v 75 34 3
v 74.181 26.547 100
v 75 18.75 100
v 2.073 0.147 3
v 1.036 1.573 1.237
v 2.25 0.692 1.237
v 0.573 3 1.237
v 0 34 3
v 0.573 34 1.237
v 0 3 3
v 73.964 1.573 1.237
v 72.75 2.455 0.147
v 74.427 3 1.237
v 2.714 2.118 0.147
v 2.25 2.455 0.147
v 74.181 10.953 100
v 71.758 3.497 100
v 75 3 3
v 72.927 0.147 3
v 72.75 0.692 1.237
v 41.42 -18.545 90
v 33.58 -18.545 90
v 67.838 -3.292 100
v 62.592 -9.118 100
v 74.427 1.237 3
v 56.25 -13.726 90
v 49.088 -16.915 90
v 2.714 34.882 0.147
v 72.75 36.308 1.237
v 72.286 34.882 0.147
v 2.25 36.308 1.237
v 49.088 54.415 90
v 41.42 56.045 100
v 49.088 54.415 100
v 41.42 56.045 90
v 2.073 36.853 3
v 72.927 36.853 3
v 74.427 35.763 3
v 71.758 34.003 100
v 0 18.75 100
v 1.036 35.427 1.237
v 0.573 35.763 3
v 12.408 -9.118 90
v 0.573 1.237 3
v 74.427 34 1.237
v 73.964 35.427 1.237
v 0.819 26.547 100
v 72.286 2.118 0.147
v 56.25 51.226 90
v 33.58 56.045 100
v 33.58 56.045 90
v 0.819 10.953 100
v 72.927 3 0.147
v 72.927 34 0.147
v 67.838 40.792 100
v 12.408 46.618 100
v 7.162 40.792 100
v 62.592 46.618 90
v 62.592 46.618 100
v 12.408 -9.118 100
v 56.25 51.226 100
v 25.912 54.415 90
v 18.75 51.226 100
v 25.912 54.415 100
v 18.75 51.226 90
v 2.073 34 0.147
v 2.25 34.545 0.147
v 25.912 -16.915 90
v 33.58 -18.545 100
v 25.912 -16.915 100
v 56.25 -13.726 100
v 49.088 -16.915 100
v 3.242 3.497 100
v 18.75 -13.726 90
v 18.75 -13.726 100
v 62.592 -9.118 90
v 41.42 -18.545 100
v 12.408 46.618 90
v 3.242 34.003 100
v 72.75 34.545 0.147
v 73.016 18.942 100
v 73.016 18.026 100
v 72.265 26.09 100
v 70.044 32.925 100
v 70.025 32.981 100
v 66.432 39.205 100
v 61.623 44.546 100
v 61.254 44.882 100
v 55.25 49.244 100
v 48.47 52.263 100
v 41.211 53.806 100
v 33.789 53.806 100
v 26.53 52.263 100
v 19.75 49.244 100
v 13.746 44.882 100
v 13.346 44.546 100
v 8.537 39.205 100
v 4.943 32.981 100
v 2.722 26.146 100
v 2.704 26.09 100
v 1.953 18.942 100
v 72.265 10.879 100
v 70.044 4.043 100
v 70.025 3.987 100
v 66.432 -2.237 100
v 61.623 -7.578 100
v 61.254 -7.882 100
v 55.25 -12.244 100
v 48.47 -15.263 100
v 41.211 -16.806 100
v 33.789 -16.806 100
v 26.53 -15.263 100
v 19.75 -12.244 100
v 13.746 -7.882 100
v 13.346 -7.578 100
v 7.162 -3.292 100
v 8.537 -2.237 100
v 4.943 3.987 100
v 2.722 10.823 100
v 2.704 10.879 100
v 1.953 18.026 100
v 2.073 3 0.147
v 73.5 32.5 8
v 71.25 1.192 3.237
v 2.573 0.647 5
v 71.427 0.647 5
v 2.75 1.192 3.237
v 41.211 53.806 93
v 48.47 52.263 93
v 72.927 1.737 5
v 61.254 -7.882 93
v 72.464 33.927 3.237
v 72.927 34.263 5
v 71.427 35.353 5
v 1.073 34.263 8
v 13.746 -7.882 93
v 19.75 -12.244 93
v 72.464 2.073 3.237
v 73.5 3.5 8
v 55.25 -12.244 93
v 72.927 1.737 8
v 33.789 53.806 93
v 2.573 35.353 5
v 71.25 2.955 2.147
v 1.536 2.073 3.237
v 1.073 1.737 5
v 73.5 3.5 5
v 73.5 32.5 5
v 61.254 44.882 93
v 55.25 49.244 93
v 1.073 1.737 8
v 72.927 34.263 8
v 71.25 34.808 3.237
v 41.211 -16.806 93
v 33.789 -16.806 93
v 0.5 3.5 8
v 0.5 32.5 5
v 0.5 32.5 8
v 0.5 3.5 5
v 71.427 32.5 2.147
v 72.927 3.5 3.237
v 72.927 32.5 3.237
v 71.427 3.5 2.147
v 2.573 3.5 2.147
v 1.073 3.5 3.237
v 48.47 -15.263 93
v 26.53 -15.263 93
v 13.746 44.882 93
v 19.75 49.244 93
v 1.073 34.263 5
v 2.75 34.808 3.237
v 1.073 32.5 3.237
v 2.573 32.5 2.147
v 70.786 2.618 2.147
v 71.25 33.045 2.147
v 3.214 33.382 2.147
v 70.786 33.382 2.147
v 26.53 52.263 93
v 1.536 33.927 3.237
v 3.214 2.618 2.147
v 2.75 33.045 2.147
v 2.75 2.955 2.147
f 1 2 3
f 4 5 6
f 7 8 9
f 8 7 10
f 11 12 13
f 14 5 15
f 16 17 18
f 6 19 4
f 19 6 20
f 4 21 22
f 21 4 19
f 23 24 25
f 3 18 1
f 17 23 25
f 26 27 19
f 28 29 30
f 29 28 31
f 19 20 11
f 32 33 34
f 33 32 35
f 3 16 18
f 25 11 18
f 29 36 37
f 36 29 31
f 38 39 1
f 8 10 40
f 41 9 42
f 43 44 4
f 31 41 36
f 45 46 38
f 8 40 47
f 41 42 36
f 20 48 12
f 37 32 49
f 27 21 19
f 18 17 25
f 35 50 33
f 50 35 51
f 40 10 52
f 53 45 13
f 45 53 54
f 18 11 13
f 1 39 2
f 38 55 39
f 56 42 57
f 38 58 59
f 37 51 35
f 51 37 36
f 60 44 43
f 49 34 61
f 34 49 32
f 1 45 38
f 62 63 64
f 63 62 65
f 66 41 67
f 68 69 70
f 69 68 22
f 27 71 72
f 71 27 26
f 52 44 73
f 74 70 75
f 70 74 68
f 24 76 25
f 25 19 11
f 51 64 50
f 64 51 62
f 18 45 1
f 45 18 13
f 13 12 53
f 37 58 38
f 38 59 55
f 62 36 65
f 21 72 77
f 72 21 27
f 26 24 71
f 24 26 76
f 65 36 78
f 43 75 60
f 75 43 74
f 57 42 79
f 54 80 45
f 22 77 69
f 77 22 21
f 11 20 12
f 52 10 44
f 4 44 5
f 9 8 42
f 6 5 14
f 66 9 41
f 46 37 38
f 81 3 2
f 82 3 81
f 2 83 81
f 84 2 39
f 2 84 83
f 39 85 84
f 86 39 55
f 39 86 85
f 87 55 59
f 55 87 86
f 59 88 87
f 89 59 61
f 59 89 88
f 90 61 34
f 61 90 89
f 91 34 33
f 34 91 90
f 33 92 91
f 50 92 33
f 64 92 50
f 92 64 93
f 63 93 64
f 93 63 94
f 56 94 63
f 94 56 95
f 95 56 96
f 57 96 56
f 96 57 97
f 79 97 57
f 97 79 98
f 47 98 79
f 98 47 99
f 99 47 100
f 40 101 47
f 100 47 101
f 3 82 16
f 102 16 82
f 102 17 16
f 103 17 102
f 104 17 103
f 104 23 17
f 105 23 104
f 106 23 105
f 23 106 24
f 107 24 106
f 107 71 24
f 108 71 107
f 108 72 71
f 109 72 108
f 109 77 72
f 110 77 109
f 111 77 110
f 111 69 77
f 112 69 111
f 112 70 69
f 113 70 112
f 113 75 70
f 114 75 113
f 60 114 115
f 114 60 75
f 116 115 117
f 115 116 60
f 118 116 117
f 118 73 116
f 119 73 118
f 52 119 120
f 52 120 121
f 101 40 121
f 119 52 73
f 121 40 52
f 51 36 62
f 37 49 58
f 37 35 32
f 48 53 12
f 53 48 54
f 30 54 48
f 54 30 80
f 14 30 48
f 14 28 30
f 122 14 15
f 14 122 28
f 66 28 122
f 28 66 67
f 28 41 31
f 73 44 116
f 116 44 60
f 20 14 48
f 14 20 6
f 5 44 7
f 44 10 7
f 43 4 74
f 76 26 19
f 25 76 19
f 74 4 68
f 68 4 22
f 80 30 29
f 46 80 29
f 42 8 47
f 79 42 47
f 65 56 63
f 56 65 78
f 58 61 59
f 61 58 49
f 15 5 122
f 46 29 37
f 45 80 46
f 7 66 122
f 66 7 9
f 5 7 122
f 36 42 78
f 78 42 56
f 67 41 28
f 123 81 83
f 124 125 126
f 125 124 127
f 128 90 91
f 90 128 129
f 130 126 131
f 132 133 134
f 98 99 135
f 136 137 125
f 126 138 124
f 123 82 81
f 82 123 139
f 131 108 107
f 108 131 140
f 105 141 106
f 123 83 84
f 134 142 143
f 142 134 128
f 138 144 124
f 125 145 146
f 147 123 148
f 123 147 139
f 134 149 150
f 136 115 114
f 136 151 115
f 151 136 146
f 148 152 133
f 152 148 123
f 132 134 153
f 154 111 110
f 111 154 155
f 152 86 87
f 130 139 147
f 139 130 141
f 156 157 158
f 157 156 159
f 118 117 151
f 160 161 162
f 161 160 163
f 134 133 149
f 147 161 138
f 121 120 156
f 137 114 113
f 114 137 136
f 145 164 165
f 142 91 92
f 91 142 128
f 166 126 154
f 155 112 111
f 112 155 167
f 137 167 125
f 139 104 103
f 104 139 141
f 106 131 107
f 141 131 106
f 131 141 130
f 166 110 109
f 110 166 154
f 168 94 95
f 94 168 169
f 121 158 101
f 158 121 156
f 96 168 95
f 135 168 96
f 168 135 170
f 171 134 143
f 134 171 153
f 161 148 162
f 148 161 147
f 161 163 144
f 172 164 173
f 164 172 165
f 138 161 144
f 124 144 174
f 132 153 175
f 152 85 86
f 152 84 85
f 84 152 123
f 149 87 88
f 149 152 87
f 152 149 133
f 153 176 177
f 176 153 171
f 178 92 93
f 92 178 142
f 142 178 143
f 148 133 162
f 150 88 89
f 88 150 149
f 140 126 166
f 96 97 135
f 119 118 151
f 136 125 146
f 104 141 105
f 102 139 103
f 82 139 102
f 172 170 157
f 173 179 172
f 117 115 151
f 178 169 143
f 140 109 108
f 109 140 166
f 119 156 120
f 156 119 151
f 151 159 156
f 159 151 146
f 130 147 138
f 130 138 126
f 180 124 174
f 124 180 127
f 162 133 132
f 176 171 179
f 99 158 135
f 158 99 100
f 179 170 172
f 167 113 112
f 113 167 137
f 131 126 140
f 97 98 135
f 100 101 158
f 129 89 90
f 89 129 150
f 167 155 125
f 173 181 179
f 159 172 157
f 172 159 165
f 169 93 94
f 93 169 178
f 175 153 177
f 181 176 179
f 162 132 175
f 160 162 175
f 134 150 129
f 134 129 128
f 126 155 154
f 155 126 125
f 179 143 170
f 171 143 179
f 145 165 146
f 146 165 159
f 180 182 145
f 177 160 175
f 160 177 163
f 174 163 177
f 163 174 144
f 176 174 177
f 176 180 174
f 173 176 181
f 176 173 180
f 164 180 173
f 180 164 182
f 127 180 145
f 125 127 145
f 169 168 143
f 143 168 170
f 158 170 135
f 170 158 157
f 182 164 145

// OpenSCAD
// file: ../utility/round-bottom-box.scad
module spheres(width,length,height,radius) {
  translate([radius,radius,radius]) sphere(radius);
  translate([width - radius, length - radius, radius]) sphere(radius);
  translate([width - radius, radius, radius]) sphere(radius);
  translate([radius, length - radius, radius]) sphere(radius);
}

module slicer(width, length, z_up, height) {
  translate([0, 0, z_up]) cube([width, length, height]); 
}

module round_bottom_box(width, length, height, radius) {
  difference() {
    hull() {
      spheres(width,length,height,radius);
      translate([0,0,height]) spheres(width,length,height,radius);
    }
    slicer(width, length, height+radius, radius+1);
  }
}

module hollow_round_bottom_box(width, length, height, radius, wall = 2) {
 inside_width = width - (2 * wall);
 inside_length = length - (2 * wall);
 inside_height = height;
 difference() {
   round_bottom_box(width, length, height, radius);
   translate ([wall, wall, wall]) 
     round_bottom_box(inside_width, inside_length, inside_height, radius);
 }
}

hollow_round_bottom_box(38,75,100,3,1);
// main file
use <../utility/round-bottom-box.scad>

smidge = 1;
bottom_width = 75;
bottom_depth = 37;
height = 90;
bottom_thickness = 2; 
bottom_radius = 3;
wall_thickness = 1;
inside_width = bottom_width - 2*wall_thickness;
inside_depth = bottom_depth - 2*wall_thickness;
radius = bottom_width/2;
inside_radius = radius - 2*wall_thickness;

module outside() {
  hull() {
    translate([radius,radius/2,height]) {
      cylinder(10,radius,radius);
      }
    round_bottom_box(bottom_width,bottom_depth,0,bottom_radius);
  }
}

module inside() {
  color("red") {
    translate ([wall_thickness/2,wall_thickness/2,bottom_thickness]) {
      hull() {
        translate([bottom_width/2-wall_thickness/2,bottom_depth/2-wall_thickness/2,height+wall_thickness]) {
          cylinder(10,inside_radius,inside_radius);
          }
        round_bottom_box(inside_width, inside_depth, 3, bottom_radius);
      }
    }
  }
}
difference() {
  outside();
  inside();
}
